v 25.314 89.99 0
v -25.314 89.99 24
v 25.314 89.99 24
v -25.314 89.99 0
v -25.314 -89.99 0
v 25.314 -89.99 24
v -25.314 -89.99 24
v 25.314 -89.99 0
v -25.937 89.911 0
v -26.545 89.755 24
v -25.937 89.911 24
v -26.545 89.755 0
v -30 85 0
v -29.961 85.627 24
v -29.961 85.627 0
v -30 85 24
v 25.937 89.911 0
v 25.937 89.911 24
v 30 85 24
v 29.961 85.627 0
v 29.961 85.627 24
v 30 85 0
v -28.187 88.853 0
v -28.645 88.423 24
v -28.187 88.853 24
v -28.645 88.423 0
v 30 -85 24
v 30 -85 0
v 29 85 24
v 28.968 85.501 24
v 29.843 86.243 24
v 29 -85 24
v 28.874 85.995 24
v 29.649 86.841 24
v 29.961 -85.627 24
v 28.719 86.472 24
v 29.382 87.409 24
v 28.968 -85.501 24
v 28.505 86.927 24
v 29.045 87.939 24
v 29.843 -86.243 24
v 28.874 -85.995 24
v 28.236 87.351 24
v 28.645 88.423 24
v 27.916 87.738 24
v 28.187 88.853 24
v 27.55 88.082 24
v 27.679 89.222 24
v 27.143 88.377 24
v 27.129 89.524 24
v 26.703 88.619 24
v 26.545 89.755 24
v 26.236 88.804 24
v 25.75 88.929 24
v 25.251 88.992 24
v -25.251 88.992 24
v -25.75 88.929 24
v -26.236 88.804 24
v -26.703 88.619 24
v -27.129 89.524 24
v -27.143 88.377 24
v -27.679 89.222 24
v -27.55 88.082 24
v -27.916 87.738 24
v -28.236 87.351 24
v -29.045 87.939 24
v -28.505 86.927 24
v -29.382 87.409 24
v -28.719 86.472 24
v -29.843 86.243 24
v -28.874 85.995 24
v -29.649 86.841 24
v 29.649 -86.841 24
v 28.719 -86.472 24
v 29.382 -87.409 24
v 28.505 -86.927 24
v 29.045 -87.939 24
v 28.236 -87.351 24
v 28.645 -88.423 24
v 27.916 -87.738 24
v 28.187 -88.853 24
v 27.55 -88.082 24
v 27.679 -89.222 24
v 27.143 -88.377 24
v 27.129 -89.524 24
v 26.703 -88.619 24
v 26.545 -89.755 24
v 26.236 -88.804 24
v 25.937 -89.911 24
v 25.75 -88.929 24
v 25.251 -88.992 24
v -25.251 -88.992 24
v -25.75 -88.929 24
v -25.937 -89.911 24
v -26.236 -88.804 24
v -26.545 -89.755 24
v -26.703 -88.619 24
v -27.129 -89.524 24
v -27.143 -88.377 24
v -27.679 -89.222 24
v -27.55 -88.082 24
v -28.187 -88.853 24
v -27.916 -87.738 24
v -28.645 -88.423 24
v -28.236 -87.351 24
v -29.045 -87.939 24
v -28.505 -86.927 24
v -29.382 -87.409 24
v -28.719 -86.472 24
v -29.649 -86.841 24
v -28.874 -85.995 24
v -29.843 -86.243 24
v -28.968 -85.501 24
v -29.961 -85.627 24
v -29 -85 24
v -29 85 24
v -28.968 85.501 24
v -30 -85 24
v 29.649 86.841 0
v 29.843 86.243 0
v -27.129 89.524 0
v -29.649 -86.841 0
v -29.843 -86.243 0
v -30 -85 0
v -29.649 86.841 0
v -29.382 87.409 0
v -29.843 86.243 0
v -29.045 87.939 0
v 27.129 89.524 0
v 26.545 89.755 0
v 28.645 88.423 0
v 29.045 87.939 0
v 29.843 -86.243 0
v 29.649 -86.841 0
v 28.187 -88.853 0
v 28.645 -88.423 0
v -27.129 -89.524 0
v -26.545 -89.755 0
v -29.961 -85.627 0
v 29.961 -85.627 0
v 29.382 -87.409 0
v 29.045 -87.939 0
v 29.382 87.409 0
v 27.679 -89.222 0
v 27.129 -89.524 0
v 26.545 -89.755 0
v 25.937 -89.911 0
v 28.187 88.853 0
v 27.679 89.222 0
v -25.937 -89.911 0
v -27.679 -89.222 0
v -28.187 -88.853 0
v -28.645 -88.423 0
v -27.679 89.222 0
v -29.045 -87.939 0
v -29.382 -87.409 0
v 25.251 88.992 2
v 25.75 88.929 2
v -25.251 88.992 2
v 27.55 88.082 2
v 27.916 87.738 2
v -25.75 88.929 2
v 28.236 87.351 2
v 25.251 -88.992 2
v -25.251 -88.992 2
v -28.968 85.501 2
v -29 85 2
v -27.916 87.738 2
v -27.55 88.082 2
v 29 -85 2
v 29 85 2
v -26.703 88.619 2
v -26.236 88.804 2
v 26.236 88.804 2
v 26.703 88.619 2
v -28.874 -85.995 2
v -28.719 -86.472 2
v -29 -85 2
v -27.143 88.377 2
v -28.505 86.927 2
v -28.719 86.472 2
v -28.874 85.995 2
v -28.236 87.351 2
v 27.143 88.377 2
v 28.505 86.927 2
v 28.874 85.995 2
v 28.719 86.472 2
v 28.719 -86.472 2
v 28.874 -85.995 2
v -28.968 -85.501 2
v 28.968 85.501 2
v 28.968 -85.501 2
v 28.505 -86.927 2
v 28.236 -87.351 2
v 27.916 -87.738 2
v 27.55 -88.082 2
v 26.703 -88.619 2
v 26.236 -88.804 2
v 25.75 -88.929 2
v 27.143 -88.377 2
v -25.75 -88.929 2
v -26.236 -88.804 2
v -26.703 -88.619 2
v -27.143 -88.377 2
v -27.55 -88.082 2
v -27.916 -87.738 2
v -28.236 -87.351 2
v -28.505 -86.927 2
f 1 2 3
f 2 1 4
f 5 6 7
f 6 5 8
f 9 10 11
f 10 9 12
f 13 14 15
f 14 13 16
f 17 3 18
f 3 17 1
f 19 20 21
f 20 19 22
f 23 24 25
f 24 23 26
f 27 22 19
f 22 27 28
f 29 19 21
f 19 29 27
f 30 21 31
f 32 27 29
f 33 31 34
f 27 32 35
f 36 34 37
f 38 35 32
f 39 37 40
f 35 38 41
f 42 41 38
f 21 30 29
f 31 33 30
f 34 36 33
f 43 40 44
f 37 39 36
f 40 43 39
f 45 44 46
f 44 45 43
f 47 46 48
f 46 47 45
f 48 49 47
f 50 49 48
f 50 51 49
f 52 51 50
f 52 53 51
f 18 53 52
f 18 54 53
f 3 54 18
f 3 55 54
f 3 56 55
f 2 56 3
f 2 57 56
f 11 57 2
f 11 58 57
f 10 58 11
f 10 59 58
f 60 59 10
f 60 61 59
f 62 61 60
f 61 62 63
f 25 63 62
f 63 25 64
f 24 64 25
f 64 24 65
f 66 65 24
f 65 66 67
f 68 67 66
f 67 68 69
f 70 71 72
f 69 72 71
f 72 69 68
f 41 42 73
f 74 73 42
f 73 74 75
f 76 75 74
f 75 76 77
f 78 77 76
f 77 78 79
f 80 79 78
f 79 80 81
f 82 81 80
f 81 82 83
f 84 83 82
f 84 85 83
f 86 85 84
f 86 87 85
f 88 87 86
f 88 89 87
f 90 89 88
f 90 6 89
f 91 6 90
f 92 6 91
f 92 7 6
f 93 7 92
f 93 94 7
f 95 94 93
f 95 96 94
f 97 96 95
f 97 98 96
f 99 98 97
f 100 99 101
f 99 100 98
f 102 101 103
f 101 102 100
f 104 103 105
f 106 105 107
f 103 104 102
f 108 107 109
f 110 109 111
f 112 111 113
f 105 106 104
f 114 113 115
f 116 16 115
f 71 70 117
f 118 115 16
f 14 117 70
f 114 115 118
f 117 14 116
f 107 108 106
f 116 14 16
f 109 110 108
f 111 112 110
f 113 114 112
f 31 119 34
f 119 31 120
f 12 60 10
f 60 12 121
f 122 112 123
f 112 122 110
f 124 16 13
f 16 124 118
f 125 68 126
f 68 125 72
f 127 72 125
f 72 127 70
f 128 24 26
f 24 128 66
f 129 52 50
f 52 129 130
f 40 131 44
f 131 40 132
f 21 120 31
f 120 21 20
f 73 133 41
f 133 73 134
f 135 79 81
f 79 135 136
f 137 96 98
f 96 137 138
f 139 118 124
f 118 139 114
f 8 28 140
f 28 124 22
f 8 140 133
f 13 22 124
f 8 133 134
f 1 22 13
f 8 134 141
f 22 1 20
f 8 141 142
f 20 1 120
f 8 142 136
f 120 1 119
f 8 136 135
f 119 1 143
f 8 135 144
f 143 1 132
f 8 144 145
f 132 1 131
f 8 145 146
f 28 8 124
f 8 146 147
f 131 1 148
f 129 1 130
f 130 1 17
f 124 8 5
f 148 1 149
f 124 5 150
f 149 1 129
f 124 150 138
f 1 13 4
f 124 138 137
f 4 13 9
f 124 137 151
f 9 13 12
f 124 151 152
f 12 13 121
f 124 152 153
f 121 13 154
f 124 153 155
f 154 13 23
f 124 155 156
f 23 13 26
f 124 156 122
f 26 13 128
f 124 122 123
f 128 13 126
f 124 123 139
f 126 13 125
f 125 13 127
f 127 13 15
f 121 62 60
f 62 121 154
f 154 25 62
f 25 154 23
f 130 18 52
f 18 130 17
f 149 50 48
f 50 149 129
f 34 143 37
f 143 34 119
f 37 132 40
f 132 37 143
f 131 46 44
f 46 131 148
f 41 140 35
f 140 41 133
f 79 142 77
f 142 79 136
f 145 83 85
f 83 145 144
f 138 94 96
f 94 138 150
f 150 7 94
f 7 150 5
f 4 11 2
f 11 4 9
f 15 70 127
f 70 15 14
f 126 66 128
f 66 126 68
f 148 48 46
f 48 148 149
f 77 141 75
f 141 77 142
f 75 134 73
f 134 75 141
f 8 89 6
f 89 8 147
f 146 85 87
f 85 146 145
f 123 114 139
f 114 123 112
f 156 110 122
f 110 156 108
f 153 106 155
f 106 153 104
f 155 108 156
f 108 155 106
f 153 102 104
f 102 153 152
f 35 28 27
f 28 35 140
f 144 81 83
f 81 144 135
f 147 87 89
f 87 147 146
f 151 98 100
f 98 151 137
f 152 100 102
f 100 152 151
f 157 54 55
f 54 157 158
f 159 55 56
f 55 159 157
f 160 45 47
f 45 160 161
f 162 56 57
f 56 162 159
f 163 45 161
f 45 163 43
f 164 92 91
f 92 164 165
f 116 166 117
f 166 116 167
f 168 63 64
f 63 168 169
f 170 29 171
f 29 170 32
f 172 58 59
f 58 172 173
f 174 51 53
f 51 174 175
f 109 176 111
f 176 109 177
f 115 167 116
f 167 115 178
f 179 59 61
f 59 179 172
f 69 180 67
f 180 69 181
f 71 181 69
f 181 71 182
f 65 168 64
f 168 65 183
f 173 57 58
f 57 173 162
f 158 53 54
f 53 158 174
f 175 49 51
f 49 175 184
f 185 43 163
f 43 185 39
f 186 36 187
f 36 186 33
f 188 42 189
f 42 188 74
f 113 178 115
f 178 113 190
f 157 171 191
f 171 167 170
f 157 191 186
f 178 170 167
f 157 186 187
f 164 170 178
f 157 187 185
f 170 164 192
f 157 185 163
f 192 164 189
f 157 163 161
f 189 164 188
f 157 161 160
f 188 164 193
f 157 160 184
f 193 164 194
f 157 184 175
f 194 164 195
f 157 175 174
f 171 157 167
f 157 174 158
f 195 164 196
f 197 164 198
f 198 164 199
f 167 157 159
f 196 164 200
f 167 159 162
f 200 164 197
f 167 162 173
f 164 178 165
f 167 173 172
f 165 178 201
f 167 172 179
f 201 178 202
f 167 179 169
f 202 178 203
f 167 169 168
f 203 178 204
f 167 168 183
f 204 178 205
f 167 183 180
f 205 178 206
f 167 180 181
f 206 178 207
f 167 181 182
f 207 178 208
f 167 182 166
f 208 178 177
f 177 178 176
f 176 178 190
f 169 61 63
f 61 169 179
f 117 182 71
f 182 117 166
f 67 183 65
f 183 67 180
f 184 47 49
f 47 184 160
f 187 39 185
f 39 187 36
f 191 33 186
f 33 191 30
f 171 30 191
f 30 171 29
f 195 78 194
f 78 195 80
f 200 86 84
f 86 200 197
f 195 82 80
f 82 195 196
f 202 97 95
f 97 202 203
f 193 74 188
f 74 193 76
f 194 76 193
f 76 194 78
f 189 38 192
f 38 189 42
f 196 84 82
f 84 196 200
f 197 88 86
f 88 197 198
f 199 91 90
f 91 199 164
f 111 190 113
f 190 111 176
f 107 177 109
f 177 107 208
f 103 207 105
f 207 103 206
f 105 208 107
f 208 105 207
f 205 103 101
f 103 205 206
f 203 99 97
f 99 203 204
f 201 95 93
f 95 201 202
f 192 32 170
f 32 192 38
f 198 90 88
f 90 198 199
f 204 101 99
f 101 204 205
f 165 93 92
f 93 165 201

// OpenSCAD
$fn = 50;


difference() {
	union() {
		hull() {
			translate(v = [-25.0000000000, 85.0000000000, 0]) {
				cylinder(h = 24, r = 5);
			}
			translate(v = [25.0000000000, 85.0000000000, 0]) {
				cylinder(h = 24, r = 5);
			}
			translate(v = [-25.0000000000, -85.0000000000, 0]) {
				cylinder(h = 24, r = 5);
			}
			translate(v = [25.0000000000, -85.0000000000, 0]) {
				cylinder(h = 24, r = 5);
			}
		}
	}
	union() {
		translate(v = [0, 0, 2]) {
			hull() {
				translate(v = [-25.0000000000, 85.0000000000, 0]) {
					cylinder(h = 22, r = 4);
				}
				translate(v = [25.0000000000, 85.0000000000, 0]) {
					cylinder(h = 22, r = 4);
				}
				translate(v = [-25.0000000000, -85.0000000000, 0]) {
					cylinder(h = 22, r = 4);
				}
				translate(v = [25.0000000000, -85.0000000000, 0]) {
					cylinder(h = 22, r = 4);
				}
			}
		}
	}
}
